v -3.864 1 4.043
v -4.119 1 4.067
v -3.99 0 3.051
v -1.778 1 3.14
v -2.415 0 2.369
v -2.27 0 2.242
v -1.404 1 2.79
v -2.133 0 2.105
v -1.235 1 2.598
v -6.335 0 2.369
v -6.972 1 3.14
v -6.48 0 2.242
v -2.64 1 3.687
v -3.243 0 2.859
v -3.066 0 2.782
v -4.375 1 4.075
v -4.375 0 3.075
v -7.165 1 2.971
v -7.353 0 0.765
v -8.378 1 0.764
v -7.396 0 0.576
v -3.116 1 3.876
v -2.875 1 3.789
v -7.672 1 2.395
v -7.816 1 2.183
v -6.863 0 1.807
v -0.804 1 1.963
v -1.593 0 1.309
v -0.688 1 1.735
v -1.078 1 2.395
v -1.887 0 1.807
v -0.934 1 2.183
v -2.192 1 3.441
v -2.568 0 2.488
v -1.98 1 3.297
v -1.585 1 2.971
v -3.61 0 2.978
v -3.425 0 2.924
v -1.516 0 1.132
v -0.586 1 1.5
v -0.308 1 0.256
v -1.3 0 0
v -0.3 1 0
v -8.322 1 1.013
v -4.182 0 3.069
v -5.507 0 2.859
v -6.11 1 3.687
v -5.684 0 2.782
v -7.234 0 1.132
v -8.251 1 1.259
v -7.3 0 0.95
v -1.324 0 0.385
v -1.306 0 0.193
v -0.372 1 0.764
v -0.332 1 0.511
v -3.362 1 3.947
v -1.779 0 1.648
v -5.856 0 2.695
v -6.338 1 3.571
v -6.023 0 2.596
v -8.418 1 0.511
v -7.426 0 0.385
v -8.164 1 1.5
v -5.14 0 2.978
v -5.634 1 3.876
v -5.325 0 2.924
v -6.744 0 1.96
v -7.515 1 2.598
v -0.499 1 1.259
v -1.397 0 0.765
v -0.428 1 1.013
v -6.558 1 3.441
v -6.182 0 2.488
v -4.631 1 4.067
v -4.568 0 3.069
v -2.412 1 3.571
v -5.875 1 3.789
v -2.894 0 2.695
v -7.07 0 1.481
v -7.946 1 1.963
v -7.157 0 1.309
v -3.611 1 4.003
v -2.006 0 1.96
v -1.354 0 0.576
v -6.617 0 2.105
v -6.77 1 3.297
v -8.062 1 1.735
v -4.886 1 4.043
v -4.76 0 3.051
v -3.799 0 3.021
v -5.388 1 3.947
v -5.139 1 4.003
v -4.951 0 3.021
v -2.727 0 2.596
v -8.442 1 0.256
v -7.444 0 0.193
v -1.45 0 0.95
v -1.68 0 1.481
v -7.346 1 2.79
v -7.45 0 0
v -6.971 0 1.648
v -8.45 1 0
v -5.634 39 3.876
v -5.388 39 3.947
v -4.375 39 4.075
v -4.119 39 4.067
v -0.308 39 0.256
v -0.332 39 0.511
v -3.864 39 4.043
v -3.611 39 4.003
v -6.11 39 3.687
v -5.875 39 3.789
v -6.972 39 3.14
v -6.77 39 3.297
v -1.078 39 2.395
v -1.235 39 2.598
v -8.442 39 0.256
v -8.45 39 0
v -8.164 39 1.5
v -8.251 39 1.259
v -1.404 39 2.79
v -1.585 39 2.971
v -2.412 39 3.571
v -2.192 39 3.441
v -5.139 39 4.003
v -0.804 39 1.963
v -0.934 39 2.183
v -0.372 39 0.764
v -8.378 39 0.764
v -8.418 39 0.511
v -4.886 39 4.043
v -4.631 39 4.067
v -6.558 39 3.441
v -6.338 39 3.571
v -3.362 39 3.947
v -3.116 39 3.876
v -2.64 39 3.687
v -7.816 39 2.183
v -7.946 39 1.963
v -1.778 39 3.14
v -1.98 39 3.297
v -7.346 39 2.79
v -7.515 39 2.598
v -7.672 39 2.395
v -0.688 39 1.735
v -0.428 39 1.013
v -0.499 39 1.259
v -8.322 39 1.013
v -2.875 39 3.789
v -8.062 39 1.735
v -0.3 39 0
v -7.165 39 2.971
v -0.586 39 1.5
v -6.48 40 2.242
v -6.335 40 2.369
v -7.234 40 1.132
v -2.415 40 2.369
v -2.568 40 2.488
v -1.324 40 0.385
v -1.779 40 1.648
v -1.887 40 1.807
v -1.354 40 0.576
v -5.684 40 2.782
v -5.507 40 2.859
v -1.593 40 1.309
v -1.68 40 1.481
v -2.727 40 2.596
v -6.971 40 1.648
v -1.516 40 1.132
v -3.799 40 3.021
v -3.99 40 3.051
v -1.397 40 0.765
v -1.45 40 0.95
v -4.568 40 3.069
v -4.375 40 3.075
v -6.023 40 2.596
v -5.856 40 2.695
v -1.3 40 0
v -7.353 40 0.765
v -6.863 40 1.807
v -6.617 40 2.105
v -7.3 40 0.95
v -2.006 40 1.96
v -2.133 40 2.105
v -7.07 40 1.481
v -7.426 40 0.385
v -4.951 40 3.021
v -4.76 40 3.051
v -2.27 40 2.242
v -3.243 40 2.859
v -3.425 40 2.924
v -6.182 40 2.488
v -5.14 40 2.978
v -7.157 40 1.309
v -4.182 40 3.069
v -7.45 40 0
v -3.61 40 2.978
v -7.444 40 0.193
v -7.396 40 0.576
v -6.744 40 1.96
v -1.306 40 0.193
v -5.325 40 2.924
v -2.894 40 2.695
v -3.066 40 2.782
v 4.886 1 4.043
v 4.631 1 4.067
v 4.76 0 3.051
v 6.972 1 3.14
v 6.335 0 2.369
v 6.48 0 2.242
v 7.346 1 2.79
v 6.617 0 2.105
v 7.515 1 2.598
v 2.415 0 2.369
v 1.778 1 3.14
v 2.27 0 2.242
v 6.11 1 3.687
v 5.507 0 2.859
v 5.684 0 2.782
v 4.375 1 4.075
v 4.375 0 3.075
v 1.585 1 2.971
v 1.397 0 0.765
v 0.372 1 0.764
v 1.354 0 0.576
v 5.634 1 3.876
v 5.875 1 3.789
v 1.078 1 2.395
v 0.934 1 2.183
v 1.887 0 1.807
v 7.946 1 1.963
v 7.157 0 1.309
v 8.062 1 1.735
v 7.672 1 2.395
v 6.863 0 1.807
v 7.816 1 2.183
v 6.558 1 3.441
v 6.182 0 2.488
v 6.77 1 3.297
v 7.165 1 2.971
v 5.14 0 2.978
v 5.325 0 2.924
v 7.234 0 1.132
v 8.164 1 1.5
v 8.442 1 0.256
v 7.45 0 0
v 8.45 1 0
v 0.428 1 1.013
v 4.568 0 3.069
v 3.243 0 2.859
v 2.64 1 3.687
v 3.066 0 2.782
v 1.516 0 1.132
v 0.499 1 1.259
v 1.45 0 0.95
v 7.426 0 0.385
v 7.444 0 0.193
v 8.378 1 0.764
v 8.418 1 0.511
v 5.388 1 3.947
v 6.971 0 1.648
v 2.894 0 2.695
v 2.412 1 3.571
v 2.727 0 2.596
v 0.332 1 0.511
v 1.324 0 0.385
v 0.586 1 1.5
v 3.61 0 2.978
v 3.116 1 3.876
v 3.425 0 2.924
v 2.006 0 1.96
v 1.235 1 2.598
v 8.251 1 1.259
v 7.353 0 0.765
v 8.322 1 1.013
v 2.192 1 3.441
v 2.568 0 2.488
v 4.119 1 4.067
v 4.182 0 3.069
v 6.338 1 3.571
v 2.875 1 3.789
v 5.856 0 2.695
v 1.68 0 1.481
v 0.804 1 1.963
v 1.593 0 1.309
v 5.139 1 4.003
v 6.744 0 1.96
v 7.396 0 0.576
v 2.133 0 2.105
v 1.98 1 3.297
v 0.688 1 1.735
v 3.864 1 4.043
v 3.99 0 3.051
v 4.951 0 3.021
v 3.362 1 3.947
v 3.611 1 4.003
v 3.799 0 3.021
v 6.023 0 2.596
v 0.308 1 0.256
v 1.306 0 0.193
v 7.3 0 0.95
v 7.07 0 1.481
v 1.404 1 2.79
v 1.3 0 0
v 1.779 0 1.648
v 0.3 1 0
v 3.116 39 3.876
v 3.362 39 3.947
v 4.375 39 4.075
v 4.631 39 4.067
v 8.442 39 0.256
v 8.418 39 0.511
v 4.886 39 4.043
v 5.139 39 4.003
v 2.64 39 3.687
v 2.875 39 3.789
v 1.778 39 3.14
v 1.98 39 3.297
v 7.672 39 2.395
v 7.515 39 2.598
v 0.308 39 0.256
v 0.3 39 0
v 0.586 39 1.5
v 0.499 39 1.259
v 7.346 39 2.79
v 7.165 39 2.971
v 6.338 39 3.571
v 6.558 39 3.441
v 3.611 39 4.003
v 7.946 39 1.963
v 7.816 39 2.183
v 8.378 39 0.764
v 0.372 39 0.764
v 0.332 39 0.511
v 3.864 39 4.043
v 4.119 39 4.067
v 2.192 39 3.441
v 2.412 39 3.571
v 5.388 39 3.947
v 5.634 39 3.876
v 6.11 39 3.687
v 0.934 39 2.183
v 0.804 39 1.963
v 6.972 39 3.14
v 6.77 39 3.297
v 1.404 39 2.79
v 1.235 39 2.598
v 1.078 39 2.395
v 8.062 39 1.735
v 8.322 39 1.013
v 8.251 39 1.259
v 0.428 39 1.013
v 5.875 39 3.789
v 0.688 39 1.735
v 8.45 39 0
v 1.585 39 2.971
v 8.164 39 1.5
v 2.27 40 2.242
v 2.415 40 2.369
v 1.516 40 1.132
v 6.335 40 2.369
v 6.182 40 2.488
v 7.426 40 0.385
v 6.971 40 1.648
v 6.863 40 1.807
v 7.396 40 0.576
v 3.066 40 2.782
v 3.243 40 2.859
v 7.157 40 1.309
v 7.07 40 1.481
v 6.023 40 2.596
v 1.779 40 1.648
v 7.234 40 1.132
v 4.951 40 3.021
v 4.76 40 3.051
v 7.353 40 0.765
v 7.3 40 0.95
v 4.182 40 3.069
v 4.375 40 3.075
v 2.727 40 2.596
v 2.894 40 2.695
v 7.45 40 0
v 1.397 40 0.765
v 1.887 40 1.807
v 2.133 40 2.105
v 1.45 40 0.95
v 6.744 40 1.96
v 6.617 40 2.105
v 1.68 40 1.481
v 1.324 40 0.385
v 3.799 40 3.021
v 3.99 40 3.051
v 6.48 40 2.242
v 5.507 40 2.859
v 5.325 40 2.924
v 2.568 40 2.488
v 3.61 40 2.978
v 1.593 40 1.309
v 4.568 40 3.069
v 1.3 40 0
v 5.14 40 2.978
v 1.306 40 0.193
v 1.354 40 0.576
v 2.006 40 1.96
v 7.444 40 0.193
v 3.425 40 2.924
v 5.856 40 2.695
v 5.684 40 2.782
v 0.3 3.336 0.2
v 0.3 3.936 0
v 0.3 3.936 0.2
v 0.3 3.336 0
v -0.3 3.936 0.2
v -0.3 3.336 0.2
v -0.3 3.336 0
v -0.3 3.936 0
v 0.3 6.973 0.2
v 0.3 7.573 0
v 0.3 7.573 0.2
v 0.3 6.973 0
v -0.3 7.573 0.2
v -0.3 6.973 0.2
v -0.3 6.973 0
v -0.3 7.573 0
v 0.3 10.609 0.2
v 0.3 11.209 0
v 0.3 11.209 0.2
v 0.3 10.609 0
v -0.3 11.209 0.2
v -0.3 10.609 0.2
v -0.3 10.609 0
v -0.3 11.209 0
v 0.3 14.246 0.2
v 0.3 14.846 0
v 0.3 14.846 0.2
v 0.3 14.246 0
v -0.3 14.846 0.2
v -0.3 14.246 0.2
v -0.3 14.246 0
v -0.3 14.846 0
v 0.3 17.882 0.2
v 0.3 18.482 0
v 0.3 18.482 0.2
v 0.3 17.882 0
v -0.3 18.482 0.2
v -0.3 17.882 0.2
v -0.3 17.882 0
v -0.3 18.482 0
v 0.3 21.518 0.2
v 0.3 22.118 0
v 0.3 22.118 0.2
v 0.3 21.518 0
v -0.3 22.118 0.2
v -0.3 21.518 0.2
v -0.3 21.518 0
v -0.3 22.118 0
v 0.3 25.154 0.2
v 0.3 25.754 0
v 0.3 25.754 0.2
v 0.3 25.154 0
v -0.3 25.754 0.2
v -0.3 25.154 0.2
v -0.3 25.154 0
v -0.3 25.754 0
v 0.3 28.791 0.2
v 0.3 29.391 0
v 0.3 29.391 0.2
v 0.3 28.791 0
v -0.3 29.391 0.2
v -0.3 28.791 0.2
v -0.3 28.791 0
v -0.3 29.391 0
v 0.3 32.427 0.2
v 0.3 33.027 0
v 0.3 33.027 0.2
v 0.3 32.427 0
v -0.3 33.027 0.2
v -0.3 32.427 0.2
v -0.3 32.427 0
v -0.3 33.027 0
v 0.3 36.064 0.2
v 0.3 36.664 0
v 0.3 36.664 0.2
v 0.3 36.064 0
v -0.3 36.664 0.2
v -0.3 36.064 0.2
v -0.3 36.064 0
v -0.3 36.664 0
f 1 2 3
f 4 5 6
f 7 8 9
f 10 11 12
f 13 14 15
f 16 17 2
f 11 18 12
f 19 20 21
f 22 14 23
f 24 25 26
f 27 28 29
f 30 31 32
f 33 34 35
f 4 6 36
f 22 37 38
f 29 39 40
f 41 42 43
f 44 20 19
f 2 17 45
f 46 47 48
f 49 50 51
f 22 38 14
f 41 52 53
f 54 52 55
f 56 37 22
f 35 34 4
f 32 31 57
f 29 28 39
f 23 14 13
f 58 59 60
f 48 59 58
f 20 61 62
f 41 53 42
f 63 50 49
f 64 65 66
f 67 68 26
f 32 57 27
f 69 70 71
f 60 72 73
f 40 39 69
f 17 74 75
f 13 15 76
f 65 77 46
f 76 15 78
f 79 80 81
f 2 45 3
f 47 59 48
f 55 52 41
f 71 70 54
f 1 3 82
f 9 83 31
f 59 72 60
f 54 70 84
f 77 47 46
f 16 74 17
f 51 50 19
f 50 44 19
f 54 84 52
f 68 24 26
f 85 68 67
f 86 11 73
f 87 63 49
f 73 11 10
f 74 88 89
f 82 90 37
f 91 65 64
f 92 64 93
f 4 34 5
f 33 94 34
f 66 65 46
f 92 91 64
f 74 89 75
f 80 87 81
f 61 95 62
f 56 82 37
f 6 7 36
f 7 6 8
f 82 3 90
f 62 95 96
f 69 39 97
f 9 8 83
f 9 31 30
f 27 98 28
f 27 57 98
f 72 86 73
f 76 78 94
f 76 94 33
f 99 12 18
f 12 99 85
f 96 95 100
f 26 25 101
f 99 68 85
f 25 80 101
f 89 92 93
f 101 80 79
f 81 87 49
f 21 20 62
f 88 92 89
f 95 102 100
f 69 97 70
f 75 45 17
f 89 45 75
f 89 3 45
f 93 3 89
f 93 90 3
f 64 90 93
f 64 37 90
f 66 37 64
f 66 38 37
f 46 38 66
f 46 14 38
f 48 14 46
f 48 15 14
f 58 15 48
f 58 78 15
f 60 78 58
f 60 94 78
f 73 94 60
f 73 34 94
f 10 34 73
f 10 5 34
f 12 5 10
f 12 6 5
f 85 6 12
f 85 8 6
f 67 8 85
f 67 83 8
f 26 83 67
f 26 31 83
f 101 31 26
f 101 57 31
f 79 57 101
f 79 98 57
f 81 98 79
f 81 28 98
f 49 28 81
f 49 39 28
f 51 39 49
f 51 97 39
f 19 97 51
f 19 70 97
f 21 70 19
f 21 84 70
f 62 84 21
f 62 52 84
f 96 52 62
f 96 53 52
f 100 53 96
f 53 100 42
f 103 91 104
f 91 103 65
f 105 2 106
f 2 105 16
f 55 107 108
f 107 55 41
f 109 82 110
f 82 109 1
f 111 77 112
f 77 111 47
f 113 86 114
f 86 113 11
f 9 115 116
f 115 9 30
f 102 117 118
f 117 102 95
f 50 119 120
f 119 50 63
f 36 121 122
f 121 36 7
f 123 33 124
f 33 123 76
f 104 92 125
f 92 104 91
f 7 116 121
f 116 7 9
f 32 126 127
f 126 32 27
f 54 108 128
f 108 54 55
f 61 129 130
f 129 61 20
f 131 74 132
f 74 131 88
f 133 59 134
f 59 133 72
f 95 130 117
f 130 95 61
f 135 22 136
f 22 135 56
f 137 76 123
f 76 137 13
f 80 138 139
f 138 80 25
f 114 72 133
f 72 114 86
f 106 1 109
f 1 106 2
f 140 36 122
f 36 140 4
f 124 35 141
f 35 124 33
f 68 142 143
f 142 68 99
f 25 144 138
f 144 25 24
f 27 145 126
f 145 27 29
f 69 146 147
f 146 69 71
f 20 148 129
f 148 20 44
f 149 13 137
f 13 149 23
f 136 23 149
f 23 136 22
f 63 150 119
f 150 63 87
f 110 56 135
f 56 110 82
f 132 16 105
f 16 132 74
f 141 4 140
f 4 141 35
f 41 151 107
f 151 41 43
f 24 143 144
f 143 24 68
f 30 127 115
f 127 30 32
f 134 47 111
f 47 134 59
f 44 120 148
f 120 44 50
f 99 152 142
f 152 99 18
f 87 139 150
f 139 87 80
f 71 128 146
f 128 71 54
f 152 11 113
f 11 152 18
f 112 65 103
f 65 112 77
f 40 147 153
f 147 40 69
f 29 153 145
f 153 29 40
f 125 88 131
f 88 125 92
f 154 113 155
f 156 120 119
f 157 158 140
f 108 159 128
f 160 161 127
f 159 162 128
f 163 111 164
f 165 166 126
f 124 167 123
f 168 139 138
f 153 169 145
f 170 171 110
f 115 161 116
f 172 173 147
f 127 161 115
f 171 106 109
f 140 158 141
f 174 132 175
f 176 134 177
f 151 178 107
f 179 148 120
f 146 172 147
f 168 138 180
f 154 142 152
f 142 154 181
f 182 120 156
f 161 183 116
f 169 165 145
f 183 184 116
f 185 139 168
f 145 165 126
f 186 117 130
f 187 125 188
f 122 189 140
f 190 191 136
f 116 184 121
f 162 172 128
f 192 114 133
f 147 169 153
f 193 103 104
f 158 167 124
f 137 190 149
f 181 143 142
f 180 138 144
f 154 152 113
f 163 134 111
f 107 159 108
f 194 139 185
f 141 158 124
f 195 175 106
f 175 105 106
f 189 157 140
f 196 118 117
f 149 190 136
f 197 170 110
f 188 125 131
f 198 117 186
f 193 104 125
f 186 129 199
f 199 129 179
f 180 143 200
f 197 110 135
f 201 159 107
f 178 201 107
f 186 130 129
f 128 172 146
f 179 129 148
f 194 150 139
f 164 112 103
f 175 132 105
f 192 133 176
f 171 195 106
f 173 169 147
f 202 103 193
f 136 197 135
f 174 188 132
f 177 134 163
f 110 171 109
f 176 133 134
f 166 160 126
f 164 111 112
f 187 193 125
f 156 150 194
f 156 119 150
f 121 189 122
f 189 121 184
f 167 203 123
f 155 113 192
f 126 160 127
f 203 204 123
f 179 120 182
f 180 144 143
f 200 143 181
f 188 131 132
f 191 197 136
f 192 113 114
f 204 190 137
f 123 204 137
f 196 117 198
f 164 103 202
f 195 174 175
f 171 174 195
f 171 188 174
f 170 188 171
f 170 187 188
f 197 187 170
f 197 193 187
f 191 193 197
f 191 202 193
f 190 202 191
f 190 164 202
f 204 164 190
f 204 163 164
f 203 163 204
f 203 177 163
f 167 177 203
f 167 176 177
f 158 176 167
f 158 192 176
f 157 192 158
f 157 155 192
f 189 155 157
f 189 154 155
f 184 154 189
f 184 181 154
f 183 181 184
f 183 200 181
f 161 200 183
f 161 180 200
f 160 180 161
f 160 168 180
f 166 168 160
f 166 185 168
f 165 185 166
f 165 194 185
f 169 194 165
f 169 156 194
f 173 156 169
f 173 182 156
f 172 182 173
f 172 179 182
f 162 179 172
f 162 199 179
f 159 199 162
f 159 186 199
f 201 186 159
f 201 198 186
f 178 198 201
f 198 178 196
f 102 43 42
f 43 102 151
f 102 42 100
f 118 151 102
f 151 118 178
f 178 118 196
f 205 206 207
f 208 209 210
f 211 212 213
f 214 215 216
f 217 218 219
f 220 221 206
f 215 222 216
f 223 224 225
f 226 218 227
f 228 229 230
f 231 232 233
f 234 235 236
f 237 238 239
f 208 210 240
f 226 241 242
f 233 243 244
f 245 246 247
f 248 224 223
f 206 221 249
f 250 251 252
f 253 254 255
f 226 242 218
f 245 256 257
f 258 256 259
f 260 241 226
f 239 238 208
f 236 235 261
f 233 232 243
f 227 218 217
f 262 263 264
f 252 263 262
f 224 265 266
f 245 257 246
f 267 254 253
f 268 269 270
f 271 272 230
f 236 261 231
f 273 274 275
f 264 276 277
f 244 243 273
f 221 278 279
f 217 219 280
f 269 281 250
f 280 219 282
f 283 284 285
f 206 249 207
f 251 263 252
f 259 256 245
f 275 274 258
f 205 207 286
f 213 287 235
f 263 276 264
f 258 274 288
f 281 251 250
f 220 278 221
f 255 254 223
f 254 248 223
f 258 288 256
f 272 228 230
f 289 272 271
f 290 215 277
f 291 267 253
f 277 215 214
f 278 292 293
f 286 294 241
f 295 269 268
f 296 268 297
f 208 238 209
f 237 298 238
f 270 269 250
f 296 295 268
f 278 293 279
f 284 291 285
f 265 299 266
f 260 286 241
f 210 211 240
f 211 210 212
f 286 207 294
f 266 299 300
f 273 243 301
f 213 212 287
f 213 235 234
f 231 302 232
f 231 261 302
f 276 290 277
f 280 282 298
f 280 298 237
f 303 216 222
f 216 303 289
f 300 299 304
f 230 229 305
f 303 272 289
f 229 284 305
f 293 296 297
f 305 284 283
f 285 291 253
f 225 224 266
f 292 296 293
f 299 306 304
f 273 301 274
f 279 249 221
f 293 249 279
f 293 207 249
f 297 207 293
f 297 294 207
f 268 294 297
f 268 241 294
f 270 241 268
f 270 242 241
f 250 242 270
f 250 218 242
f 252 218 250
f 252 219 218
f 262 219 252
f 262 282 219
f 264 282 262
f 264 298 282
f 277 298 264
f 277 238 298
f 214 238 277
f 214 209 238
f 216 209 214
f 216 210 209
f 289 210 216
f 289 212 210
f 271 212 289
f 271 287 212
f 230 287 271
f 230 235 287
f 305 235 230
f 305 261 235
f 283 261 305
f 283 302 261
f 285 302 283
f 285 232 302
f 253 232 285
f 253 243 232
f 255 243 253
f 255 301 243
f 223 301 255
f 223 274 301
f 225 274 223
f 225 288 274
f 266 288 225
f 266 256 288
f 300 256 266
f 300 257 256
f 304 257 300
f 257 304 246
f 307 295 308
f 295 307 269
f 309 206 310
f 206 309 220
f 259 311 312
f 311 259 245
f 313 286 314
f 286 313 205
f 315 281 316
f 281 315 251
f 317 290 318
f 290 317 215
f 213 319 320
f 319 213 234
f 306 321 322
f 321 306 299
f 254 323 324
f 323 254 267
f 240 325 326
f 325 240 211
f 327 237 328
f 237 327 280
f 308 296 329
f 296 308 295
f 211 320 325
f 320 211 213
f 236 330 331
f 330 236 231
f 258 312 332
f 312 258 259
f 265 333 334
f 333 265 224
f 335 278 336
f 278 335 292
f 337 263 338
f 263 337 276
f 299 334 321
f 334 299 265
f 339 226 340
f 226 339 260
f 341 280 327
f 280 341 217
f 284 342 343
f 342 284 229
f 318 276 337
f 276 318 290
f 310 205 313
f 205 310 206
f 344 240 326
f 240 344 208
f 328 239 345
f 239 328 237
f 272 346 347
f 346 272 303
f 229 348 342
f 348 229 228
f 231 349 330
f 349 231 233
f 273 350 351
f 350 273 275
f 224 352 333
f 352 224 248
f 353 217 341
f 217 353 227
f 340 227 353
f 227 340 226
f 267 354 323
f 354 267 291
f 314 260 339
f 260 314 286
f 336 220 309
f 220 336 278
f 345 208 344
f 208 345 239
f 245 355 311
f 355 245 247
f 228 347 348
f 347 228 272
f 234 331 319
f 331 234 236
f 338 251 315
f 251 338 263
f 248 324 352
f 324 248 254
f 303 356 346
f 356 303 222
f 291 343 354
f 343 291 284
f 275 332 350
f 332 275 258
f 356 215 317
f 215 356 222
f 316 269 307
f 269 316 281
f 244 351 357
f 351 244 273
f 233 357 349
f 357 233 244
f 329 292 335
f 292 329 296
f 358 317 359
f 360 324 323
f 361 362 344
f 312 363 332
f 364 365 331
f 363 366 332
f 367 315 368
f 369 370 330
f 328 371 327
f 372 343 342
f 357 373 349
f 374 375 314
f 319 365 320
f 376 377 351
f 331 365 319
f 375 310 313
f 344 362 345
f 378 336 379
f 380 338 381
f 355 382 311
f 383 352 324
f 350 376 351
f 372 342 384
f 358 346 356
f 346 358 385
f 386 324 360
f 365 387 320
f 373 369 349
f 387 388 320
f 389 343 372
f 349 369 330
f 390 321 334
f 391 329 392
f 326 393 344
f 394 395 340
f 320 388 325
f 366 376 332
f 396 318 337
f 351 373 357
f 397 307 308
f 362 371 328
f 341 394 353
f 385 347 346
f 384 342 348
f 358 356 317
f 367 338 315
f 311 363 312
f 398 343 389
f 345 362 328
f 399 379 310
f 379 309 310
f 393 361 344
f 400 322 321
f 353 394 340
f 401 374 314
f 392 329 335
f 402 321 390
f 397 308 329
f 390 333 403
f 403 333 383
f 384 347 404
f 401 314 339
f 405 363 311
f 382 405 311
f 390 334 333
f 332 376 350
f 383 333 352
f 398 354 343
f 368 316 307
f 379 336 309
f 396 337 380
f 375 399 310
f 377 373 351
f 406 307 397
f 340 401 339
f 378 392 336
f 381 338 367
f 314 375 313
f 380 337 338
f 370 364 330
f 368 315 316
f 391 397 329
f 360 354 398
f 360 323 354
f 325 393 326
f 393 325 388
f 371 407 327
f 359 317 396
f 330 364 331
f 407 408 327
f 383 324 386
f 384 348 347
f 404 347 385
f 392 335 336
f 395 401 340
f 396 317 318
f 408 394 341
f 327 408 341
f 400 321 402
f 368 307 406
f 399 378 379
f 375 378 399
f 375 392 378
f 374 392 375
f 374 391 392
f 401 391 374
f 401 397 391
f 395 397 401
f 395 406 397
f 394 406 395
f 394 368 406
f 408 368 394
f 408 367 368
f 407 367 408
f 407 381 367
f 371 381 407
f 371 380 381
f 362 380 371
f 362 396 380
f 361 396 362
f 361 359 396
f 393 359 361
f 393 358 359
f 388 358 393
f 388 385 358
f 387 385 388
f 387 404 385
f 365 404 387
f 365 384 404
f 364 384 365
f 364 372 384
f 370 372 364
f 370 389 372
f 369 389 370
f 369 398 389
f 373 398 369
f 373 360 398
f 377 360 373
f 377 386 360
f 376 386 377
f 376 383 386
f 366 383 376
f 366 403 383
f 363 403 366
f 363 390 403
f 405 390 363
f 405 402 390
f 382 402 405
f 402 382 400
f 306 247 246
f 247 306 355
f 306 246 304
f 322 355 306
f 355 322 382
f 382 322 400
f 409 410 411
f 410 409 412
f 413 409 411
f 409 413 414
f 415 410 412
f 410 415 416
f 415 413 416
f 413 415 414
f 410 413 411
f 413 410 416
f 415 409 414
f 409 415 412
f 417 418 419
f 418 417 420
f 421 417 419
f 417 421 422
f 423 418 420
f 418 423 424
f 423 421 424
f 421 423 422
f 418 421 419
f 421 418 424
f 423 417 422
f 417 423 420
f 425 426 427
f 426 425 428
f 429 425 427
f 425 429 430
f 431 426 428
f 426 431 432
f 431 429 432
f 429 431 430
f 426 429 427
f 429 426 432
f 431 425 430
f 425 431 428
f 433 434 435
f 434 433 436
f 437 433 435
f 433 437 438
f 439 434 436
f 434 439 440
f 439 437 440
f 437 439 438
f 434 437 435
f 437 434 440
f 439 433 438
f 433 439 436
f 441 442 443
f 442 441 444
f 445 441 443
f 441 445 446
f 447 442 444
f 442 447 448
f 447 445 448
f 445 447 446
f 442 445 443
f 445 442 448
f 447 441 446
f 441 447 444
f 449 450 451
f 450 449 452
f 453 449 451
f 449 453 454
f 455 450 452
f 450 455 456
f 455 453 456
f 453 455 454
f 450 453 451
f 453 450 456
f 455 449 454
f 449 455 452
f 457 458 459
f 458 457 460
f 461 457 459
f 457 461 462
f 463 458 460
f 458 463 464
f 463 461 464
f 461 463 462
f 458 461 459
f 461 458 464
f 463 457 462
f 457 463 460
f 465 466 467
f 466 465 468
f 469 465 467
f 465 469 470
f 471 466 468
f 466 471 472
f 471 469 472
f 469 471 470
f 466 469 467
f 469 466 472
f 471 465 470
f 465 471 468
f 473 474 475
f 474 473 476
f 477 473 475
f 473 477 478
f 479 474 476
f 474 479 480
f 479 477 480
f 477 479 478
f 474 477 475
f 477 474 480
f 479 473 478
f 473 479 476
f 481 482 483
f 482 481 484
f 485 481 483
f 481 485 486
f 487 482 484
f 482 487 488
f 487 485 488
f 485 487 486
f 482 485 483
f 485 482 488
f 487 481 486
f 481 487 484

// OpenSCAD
/**
 * Parametric Dowel Generator v1.0.0
 *
 * Generates replacement dowels for IKEA-style furniture panel connections.
 * Supports both solid and fold-flat print modes.
 *
 * NOMENCLATURE:
 * - dowel:       The complete cylindrical pin
 * - half:        One semi-cylindrical half of a split dowel
 * - flat:        The chord face where a half sits on the print bed
 * - bridge:      Thin connecting segment between two halves (fold mode)
 * - span:        The gap between halves where the bridge crosses
 */

// =====================================================================
// PARAMETERS
// =====================================================================

// --- Core Dimensions ---
diameter = 8.15; // [mm] Outer diameter of the dowel
length = 40; // [mm] Total length of the dowel

// --- Chamfer ---
chamfer_enabled = true; // Bevel the ends for easier insertion
chamfer_depth = 1.0; // [mm] How far the bevel extends along the dowel axis
chamfer_angle = 45; // [deg] Bevel angle (45 = classic, steeper = more aggressive)

// --- Fold-Flat Print Mode ---
fold_mode = true; // Split dowel into two halves with bridges
bridge_count = 10; // Number of bridges connecting the halves
bridge_width = 0.6; // [mm] Width of each bridge along dowel length
bridge_thickness = 0.2; // [mm] Thickness of bridge (1–2 layer heights)
span_gap = .6; // [mm] Gap between flat faces (hinge flex room)

// --- Print Tuning ---
tolerance = 0.0; // [mm] Diameter reduction for fit adjustment
$fn = 100; // Render quality

// // --- End Treatment (TODO) ---
// cap_style       = 1;        // [0=flat, 1=hemisphere, 2=chamfer]
// cap_ratio       = 0.5;      // Hemisphere height as fraction of radius (0.0–1.0)
// chamfer_angle   = 45;       // [deg] Angle of chamfer bevel (cap_style=2)
// chamfer_depth   = 1.0;      // [mm] Axial depth of chamfer (cap_style=2)

// // --- Surface Features (TODO) ---
// knurl_enabled   = true;     // Add longitudinal ridges for grip
// knurl_count     = 12;       // Number of ridges around circumference
// knurl_depth     = 0.4;      // [mm] Depth of each ridge groove
// knurl_style     = 0;        // [0=longitudinal, 1=helical, 2=diamond]
// knurl_helix     = 30;       // [deg] Helix twist angle (style 1 & 2)

// groove_enabled  = true;     // Add ring groove(s) for glue retention
// groove_count    = 1;        // Number of ring grooves
// groove_width    = 1.5;      // [mm] Width of each groove
// groove_depth    = 0.6;      // [mm] Depth of each groove
// groove_spacing  = 5;        // [mm] Center-to-center spacing between grooves

// =====================================================================
// COMPUTED VALUES
// =====================================================================

radius = diameter / 2;
effective_radius = radius - tolerance;

// Bridge placement (evenly spaced along length)
bridge_spacing = length / (bridge_count + 1);

// =====================================================================
// MODULES
// =====================================================================

/**
 * Complete dowel along Y axis, centered on XZ.
 * When chamfer_enabled, ends taper to a smaller radius for easier insertion.
 */
module dowel() {
  tip_radius = max(0, effective_radius - chamfer_depth * tan(chamfer_angle));
  rotate([-90, 0, 0]) {
    if (chamfer_enabled) {
      // Front taper
      cylinder(h=chamfer_depth, r1=tip_radius, r2=effective_radius);
      // Main body
      translate([0, 0, chamfer_depth])
        cylinder(h=length - 2 * chamfer_depth, r=effective_radius);
      // Back taper
      translate([0, 0, length - chamfer_depth])
        cylinder(h=chamfer_depth, r1=effective_radius, r2=tip_radius);
    } else {
      cylinder(h=length, r=effective_radius);
    }
  }
}

/**
 * Half-dowel: cylinder sliced at Z=0.
 * Flat face on the XY plane (Z=0), curved surface extends up (+Z).
 * Dowel length runs along Y from 0 to length.
 */
module half_dowel() {
  intersection() {
    dowel();
    translate([-(effective_radius + 1), 0, 0])
      cube([effective_radius * 2 + 2, length + 1, effective_radius + 1]);
  }
}

/**
 * Fold-flat assembly: two halves flat on the bed, connected by bridges.
 *
 * Layout (looking down -Z):
 *   [Half A]  gap  [Half B]
 *
 * Both flat faces at Z=0, curved surfaces up.
 * Fold Half B onto Half A to form a complete dowel.
 */
module fold_flat_assembly() {
  // Half A — left side, inner edge at X = -span_gap/2
  translate([-(effective_radius + span_gap / 2), 0, 0])
    half_dowel();

  // Half B — right side, inner edge at X = +span_gap/2
  translate([effective_radius + span_gap / 2, 0, 0])
    half_dowel();

  // Living-hinge bridges
  fold_bridges();
}

/**
 * Thin bridges connecting the two halves at the hinge line.
 * Flat rectangles at Z=0 spanning the gap in X.
 * Evenly spaced along the dowel length (Y axis).
 */
module fold_bridges() {
  for (i = [1:bridge_count]) {
    y_pos = i * bridge_spacing;
    translate([-span_gap / 2, y_pos - bridge_width / 2, 0])
      cube([span_gap, bridge_width, bridge_thickness]);
  }
}

// =====================================================================
// RENDER
// =====================================================================

if (fold_mode) {
  fold_flat_assembly();
} else {
  dowel();
}
